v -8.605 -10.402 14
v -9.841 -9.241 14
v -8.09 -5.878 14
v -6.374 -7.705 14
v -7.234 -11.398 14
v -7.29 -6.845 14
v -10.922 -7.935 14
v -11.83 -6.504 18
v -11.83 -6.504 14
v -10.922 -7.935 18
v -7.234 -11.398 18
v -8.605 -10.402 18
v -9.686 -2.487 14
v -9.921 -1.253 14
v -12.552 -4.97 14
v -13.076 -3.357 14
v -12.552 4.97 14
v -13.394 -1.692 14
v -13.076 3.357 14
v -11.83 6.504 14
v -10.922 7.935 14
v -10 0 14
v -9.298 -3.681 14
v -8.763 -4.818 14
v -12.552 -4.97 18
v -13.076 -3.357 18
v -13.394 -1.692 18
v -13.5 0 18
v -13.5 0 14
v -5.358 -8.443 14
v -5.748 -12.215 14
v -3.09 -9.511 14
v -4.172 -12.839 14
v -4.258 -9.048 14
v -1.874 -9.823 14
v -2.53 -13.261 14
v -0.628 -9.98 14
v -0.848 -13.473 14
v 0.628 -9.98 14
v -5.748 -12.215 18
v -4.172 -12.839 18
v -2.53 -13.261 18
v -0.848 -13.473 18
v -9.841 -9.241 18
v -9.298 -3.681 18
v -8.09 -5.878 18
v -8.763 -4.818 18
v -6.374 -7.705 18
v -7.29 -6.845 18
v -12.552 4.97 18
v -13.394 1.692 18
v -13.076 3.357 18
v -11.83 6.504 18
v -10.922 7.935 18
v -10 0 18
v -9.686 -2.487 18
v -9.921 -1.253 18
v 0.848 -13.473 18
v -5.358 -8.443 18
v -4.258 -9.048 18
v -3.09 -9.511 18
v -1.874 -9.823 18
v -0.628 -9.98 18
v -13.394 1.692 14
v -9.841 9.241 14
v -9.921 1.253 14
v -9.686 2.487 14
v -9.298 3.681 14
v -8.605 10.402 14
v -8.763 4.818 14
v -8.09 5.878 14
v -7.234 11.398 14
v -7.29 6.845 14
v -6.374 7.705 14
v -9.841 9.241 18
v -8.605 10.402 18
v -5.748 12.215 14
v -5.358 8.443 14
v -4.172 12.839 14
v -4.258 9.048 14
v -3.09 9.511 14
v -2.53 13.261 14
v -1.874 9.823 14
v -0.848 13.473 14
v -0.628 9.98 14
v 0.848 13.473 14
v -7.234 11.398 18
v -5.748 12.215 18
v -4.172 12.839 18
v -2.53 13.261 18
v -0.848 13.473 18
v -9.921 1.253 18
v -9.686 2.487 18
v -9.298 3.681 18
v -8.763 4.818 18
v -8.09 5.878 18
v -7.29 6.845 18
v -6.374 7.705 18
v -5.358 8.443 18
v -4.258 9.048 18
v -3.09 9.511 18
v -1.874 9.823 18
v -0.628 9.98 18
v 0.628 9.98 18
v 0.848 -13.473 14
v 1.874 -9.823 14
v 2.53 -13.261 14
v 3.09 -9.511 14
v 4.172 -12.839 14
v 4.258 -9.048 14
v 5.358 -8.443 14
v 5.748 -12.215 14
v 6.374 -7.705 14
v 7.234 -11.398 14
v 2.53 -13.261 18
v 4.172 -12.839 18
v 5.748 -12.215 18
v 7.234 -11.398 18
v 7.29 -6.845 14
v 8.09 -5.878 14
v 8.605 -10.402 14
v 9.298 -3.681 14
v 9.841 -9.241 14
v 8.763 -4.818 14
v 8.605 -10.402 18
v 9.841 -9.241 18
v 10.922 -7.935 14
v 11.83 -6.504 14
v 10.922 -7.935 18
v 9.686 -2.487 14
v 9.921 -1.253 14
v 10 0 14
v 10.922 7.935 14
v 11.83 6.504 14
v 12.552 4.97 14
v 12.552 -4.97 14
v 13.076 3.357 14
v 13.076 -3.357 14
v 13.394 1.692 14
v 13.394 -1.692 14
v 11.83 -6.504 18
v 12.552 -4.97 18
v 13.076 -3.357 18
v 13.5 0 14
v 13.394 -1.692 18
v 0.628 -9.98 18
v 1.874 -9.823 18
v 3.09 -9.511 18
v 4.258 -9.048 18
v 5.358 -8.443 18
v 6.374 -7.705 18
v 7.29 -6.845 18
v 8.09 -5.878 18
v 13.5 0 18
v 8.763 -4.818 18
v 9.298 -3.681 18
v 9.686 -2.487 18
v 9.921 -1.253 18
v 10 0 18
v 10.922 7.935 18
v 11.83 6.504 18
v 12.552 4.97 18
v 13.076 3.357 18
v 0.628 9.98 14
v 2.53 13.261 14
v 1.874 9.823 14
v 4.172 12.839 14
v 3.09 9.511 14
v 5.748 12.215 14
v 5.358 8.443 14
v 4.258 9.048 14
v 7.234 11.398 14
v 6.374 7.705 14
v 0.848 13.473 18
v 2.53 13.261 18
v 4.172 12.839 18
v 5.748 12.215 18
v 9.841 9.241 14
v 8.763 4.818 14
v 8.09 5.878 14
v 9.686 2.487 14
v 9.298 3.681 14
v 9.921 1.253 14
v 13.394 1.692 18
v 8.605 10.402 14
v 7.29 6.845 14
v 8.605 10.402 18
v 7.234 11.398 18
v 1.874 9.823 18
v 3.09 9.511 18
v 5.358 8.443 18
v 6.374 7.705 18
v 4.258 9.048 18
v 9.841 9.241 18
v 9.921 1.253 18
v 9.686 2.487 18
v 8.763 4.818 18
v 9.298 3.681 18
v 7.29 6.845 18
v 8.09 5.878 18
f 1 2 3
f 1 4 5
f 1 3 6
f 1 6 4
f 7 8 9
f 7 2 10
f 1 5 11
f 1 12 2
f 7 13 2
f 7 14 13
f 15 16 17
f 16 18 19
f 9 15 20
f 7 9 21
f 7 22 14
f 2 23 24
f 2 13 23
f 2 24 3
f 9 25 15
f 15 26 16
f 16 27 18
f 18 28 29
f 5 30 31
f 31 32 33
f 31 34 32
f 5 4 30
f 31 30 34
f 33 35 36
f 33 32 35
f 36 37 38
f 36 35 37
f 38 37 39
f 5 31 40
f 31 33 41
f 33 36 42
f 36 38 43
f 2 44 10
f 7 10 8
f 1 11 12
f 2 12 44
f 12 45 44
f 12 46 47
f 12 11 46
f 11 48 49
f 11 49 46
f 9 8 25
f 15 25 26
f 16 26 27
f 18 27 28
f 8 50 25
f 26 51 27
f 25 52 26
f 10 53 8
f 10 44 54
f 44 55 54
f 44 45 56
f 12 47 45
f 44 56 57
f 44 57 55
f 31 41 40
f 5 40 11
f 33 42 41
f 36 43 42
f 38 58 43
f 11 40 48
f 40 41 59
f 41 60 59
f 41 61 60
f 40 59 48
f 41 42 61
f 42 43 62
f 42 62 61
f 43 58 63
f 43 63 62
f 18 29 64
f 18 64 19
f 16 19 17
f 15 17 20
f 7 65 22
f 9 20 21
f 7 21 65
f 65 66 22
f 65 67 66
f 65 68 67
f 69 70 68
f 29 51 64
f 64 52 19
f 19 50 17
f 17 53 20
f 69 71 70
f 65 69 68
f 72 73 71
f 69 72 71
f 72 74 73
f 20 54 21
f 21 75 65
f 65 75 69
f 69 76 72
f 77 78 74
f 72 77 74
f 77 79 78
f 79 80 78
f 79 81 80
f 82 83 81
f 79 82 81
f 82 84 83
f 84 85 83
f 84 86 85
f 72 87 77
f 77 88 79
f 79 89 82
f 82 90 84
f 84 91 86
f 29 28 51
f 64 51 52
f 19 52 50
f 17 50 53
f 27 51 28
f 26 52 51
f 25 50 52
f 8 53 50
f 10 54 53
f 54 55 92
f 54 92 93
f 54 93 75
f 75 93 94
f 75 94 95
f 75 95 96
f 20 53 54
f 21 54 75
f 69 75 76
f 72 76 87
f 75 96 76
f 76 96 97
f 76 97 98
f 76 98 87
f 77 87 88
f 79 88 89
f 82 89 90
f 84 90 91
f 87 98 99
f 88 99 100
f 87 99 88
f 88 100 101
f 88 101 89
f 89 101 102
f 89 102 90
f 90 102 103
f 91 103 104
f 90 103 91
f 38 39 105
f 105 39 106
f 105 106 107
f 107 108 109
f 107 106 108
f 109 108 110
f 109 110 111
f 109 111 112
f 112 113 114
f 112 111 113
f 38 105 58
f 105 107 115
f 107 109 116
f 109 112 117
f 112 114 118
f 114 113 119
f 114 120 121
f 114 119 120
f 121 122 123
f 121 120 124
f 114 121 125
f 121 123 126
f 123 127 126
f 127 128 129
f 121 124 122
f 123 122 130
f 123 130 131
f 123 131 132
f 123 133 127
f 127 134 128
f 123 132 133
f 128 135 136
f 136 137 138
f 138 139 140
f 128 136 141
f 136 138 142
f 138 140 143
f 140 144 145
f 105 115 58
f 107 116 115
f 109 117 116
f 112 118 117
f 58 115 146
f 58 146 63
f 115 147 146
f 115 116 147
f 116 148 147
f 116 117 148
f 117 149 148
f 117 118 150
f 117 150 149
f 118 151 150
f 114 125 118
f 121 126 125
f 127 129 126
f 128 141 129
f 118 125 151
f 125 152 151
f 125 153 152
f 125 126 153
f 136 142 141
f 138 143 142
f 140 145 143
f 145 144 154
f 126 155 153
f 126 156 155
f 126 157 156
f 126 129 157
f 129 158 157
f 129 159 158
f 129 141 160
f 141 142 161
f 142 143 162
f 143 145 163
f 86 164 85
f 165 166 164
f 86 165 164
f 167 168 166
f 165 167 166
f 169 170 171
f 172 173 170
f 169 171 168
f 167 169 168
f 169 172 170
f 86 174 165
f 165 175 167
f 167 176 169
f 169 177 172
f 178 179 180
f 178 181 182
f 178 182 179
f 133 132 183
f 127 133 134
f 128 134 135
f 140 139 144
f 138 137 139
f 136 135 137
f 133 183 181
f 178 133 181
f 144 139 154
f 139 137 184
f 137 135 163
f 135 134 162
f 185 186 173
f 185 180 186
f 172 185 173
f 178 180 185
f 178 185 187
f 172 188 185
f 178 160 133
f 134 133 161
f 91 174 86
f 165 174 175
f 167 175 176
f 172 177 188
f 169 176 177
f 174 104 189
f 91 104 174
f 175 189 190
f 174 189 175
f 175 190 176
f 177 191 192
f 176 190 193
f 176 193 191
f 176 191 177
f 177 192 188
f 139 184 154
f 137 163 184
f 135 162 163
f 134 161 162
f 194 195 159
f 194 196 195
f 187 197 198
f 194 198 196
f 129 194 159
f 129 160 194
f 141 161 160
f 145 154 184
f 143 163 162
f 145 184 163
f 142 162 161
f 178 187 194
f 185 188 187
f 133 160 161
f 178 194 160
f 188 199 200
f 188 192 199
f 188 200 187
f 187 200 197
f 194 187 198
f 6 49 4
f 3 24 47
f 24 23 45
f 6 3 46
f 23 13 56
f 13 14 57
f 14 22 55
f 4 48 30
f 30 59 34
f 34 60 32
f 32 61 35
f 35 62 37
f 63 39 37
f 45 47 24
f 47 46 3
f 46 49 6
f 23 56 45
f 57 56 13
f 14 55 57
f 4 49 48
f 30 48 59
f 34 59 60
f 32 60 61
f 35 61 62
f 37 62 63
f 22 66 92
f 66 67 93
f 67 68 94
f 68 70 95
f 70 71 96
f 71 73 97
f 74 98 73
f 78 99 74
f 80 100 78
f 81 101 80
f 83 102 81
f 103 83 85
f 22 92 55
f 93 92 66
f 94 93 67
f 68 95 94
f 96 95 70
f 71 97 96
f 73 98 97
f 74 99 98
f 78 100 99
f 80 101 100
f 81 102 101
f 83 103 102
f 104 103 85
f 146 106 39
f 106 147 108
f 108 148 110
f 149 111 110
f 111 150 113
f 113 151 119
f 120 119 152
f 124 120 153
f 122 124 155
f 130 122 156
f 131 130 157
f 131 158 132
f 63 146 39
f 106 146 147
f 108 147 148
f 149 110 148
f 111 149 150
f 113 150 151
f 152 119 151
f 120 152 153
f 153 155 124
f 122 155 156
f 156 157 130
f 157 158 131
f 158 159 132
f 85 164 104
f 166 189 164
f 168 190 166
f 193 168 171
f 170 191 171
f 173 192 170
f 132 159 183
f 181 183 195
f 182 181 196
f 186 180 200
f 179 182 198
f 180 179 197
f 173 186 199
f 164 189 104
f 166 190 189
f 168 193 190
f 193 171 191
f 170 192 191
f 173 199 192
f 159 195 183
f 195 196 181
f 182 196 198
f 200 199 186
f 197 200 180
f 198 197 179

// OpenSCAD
$fn = 50;

difference() {
	union() {
		translate(v = [0, 0, 16]) {
			rotate(a = [0, 0, 0]) {
				difference() {
					union() {
						translate(v = [0, 0, -2.0]) {
							cylinder(h = 4, r = 13.5);
						}
					}
					union() {
						translate(v = [0, 0, -3]) {
							cylinder(h = 6, r = 10);
						}
					}
				}
			}
		}
	}
	union();
}
